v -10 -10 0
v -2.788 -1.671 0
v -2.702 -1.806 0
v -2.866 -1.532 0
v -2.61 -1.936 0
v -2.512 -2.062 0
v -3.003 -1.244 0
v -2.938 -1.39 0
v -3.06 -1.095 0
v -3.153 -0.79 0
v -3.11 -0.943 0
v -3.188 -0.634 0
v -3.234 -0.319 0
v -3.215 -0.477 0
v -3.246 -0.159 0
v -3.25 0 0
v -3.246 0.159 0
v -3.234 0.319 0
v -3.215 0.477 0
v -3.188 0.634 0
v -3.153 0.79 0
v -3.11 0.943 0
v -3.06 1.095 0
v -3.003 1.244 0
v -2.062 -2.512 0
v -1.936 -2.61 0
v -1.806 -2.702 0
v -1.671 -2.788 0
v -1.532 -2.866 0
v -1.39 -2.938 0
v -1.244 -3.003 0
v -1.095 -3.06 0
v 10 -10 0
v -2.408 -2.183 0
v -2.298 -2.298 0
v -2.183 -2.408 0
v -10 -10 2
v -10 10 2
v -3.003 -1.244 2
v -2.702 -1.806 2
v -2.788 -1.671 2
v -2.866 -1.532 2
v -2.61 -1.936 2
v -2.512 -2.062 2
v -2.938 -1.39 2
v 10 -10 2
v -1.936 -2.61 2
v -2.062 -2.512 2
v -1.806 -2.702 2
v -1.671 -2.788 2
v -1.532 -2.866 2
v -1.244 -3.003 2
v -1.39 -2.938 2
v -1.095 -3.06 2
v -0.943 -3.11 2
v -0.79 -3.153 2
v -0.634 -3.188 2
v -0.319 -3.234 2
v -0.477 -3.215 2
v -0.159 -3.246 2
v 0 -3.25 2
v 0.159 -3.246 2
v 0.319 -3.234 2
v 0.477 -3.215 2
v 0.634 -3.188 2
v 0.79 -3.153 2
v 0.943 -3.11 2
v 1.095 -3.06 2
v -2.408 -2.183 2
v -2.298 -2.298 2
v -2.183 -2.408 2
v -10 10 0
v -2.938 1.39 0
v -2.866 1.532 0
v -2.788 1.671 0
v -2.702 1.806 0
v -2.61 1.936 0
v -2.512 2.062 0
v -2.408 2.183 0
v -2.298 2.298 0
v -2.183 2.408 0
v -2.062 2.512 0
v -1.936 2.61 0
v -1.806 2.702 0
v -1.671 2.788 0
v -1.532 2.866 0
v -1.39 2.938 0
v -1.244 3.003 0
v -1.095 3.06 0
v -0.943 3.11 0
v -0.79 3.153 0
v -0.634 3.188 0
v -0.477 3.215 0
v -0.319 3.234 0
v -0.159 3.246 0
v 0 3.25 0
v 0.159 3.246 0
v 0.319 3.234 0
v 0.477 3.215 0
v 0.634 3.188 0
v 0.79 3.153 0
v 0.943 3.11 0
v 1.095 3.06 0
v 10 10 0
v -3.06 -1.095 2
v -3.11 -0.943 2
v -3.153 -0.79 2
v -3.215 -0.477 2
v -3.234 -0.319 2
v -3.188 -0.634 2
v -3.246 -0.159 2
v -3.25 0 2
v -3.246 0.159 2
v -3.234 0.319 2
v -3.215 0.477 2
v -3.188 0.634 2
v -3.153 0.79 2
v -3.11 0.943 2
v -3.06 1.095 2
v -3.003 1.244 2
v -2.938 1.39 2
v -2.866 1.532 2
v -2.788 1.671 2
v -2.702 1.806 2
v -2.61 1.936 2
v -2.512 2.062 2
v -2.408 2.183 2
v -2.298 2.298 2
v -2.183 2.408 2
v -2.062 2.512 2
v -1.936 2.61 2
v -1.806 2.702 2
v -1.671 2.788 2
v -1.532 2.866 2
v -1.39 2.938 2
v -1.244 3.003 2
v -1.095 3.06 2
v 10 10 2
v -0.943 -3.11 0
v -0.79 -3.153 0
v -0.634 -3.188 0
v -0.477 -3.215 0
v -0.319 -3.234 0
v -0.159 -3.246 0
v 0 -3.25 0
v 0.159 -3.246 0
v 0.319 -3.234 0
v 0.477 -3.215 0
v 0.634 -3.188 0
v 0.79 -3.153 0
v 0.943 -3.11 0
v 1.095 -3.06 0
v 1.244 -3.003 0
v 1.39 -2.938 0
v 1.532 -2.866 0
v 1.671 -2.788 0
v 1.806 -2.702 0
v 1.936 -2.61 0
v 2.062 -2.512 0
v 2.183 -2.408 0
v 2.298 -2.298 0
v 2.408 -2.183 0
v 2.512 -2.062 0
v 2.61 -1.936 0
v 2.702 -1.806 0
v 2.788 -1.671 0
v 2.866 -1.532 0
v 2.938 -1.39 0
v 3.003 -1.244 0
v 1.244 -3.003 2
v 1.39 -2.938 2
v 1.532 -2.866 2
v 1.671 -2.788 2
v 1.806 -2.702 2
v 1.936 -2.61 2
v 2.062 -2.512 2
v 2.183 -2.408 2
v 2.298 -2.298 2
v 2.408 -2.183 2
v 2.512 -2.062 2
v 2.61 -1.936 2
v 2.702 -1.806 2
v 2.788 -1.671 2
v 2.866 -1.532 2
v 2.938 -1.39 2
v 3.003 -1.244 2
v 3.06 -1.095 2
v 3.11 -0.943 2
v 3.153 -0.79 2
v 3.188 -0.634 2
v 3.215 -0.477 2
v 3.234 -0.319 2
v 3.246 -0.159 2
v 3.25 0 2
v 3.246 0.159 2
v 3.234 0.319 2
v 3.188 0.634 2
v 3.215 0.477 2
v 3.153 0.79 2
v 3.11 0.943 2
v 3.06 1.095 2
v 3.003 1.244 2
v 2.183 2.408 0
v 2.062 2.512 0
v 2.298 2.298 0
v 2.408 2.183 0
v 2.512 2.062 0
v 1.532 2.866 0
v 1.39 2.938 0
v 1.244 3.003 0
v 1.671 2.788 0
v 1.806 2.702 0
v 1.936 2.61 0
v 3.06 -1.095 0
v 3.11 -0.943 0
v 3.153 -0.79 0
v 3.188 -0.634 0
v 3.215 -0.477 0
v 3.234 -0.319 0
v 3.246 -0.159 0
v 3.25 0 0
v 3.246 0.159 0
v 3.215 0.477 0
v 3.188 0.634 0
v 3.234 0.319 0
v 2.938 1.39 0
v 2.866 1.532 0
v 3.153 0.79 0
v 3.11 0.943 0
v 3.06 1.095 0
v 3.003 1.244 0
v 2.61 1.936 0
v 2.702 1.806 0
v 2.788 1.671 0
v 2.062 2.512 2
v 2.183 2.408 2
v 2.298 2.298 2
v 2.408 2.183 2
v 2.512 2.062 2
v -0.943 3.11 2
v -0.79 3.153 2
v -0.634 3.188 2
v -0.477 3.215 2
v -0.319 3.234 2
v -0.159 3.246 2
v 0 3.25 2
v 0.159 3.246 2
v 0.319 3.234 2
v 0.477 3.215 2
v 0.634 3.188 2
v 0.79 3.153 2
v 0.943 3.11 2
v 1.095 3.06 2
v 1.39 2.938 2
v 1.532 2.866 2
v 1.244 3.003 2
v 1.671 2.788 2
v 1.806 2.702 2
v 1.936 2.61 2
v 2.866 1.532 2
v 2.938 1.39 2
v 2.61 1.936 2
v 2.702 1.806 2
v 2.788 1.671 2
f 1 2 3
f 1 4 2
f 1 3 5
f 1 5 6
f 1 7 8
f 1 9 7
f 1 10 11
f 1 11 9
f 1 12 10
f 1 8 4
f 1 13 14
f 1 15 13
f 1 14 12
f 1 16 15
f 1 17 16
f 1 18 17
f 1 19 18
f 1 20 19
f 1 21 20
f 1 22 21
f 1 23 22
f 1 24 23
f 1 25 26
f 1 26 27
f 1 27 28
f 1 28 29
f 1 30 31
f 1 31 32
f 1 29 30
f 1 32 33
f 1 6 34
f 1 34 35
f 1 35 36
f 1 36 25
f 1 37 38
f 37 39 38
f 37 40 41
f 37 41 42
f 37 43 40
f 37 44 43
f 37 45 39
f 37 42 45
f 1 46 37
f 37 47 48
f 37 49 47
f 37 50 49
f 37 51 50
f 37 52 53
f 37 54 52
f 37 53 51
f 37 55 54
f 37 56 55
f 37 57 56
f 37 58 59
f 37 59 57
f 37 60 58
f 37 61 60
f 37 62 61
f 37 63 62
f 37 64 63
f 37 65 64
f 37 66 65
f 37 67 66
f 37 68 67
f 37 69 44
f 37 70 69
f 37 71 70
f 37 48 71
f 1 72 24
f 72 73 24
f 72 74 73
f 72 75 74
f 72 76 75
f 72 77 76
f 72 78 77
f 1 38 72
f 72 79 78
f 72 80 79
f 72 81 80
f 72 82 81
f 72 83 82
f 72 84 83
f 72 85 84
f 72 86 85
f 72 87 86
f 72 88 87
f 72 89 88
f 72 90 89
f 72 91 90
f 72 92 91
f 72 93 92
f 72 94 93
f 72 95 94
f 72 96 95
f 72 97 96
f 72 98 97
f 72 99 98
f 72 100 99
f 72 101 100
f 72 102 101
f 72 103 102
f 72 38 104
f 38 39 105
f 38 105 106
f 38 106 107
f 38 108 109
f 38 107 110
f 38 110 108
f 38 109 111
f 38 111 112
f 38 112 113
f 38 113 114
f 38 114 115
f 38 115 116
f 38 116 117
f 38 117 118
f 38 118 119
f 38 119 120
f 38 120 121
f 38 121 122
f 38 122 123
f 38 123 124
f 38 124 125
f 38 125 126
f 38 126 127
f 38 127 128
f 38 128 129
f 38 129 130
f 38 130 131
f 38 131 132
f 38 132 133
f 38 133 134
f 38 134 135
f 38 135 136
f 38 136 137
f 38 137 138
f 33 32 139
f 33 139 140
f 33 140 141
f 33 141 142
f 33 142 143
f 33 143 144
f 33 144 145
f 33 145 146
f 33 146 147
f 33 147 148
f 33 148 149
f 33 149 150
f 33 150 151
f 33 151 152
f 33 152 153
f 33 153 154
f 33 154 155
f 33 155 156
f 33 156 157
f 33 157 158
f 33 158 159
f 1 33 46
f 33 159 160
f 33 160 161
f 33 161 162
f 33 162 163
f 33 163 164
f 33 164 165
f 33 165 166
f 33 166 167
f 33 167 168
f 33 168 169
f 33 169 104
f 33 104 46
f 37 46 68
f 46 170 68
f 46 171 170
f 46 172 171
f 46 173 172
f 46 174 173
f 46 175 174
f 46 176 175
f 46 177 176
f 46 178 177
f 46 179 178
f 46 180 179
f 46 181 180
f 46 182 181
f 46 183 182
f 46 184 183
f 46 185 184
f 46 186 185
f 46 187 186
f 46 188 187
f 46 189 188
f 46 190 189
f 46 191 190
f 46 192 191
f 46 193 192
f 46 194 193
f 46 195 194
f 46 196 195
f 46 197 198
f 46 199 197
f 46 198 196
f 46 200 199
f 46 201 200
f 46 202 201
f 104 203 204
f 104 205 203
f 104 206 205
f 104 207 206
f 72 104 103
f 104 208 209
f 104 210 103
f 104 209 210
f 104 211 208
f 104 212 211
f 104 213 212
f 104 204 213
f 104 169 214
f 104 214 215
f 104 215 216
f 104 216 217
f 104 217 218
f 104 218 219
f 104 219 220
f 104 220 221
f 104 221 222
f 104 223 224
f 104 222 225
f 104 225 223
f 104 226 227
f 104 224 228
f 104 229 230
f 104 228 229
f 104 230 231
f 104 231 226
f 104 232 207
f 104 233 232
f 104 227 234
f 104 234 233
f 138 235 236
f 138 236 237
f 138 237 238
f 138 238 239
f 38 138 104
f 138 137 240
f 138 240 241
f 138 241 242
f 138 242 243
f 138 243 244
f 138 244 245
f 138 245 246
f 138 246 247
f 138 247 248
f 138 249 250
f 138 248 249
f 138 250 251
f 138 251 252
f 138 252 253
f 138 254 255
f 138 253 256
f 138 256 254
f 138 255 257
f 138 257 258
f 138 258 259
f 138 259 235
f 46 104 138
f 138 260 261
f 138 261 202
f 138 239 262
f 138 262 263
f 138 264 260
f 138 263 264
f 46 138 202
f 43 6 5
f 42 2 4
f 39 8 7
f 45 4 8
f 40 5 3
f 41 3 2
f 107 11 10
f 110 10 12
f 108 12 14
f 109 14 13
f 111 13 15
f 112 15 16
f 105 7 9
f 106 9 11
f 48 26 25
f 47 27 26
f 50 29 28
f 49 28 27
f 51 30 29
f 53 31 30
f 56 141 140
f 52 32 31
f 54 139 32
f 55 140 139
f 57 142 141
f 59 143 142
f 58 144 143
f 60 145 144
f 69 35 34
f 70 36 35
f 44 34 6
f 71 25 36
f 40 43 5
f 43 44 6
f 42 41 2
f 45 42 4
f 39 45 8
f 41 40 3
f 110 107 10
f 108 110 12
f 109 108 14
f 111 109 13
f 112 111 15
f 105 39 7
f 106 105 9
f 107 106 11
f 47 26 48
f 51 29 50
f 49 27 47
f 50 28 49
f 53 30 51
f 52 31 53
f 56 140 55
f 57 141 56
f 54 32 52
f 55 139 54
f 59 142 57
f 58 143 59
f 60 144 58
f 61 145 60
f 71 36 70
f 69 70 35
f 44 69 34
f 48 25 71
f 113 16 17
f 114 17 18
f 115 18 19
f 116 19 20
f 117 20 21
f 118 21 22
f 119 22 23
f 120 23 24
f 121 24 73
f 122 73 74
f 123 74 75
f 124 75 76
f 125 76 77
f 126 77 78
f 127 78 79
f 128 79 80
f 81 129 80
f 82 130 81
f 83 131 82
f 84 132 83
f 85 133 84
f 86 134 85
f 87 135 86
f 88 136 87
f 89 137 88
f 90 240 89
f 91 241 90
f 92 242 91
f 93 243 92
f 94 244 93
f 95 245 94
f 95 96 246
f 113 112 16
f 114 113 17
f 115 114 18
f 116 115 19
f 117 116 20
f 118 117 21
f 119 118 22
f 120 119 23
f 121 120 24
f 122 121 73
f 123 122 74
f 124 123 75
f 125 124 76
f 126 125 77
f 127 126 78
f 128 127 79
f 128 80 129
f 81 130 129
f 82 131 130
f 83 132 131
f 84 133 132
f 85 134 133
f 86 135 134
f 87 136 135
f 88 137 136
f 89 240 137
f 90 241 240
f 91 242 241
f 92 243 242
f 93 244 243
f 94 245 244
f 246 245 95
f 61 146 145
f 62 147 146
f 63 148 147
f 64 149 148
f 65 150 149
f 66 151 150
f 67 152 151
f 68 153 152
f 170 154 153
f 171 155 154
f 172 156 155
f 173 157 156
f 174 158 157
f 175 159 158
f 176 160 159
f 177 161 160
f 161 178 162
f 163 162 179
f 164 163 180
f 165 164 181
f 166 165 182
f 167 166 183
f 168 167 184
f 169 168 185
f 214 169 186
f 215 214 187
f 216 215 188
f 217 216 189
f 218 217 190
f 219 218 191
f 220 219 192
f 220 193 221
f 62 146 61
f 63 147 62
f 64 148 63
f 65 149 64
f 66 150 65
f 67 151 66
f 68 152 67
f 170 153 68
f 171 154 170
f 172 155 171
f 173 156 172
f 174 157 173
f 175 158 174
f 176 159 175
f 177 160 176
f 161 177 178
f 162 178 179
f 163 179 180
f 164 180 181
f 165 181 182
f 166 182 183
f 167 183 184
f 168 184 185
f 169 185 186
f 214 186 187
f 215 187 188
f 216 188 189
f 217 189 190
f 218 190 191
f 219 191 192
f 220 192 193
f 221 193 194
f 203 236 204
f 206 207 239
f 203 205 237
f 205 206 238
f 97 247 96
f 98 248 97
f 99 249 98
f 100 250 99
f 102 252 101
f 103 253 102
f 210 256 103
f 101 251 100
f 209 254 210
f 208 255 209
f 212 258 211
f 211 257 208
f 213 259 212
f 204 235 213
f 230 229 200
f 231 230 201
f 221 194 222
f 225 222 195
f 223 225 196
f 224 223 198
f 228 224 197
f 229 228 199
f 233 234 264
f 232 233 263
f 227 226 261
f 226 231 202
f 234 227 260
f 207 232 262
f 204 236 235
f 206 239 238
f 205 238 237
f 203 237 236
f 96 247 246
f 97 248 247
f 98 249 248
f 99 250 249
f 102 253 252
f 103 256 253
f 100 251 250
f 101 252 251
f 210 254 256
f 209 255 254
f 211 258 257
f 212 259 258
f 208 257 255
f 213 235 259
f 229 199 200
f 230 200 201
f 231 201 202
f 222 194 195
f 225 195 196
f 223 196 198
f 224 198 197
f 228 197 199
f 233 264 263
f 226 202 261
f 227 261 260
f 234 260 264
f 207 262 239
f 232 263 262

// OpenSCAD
// SPDX-License-Identifier: CC-BY-4.0
// SPDX-FileCopyrightText: 2026 Todd Sayre
// Square washer — a flat square plate with a centred round through bore.
// All dimensions are millimetres. Defaults are examples, not a standard size.
// Print as modelled, flat face on the plate and bore axis vertical.
// The walls are vertical; no supports or bridges are needed.

// ===== DIMENSIONS =====
// Measure an existing washer or choose the finished dimensions you need.

// Inner diameter (ID) of the round through bore (mm) — inside jaws at the
// bore opening, 6 in caliper. Include any desired fit clearance in this value.
inner_diameter = 6.5;

// Side length of the square exterior (mm) — outside jaws across opposite
// straight edges, 6 in caliper. Both sides use this same length.
side_length = 20;

// Axial thickness between the two flat faces (mm) — outside jaws on the
// faces, 6 in caliper.
thickness = 2;

// ===== TUNE THESE =====
$fn = 128;

// ===== DERIVED =====
// Narrowest material between the bore and any of the four straight edges.
minimum_edge_width = (side_length - inner_diameter) / 2;
// Extend the bore past both faces so the cut has no coincident end faces.
cut_overlap = 0.01;

assert(inner_diameter > 0, "inner_diameter must be positive to leave a through bore");
assert(minimum_edge_width > 0, "side_length must exceed inner_diameter to leave material around the bore");
assert(thickness > 0, "thickness must be positive");

echo(str("inner diameter (ID) = ", inner_diameter, " mm"));
echo(str("square side length = ", side_length, " mm"));
echo(str("thickness = ", thickness, " mm"));
echo(str("minimum edge width = ", minimum_edge_width, " mm"));

module square_washer() {
  difference() {
    translate([-side_length / 2, -side_length / 2, 0])
      cube([side_length, side_length, thickness]);
    translate([0, 0, -cut_overlap])
      cylinder(d = inner_diameter, h = thickness + 2 * cut_overlap);
  }
}

square_washer();
